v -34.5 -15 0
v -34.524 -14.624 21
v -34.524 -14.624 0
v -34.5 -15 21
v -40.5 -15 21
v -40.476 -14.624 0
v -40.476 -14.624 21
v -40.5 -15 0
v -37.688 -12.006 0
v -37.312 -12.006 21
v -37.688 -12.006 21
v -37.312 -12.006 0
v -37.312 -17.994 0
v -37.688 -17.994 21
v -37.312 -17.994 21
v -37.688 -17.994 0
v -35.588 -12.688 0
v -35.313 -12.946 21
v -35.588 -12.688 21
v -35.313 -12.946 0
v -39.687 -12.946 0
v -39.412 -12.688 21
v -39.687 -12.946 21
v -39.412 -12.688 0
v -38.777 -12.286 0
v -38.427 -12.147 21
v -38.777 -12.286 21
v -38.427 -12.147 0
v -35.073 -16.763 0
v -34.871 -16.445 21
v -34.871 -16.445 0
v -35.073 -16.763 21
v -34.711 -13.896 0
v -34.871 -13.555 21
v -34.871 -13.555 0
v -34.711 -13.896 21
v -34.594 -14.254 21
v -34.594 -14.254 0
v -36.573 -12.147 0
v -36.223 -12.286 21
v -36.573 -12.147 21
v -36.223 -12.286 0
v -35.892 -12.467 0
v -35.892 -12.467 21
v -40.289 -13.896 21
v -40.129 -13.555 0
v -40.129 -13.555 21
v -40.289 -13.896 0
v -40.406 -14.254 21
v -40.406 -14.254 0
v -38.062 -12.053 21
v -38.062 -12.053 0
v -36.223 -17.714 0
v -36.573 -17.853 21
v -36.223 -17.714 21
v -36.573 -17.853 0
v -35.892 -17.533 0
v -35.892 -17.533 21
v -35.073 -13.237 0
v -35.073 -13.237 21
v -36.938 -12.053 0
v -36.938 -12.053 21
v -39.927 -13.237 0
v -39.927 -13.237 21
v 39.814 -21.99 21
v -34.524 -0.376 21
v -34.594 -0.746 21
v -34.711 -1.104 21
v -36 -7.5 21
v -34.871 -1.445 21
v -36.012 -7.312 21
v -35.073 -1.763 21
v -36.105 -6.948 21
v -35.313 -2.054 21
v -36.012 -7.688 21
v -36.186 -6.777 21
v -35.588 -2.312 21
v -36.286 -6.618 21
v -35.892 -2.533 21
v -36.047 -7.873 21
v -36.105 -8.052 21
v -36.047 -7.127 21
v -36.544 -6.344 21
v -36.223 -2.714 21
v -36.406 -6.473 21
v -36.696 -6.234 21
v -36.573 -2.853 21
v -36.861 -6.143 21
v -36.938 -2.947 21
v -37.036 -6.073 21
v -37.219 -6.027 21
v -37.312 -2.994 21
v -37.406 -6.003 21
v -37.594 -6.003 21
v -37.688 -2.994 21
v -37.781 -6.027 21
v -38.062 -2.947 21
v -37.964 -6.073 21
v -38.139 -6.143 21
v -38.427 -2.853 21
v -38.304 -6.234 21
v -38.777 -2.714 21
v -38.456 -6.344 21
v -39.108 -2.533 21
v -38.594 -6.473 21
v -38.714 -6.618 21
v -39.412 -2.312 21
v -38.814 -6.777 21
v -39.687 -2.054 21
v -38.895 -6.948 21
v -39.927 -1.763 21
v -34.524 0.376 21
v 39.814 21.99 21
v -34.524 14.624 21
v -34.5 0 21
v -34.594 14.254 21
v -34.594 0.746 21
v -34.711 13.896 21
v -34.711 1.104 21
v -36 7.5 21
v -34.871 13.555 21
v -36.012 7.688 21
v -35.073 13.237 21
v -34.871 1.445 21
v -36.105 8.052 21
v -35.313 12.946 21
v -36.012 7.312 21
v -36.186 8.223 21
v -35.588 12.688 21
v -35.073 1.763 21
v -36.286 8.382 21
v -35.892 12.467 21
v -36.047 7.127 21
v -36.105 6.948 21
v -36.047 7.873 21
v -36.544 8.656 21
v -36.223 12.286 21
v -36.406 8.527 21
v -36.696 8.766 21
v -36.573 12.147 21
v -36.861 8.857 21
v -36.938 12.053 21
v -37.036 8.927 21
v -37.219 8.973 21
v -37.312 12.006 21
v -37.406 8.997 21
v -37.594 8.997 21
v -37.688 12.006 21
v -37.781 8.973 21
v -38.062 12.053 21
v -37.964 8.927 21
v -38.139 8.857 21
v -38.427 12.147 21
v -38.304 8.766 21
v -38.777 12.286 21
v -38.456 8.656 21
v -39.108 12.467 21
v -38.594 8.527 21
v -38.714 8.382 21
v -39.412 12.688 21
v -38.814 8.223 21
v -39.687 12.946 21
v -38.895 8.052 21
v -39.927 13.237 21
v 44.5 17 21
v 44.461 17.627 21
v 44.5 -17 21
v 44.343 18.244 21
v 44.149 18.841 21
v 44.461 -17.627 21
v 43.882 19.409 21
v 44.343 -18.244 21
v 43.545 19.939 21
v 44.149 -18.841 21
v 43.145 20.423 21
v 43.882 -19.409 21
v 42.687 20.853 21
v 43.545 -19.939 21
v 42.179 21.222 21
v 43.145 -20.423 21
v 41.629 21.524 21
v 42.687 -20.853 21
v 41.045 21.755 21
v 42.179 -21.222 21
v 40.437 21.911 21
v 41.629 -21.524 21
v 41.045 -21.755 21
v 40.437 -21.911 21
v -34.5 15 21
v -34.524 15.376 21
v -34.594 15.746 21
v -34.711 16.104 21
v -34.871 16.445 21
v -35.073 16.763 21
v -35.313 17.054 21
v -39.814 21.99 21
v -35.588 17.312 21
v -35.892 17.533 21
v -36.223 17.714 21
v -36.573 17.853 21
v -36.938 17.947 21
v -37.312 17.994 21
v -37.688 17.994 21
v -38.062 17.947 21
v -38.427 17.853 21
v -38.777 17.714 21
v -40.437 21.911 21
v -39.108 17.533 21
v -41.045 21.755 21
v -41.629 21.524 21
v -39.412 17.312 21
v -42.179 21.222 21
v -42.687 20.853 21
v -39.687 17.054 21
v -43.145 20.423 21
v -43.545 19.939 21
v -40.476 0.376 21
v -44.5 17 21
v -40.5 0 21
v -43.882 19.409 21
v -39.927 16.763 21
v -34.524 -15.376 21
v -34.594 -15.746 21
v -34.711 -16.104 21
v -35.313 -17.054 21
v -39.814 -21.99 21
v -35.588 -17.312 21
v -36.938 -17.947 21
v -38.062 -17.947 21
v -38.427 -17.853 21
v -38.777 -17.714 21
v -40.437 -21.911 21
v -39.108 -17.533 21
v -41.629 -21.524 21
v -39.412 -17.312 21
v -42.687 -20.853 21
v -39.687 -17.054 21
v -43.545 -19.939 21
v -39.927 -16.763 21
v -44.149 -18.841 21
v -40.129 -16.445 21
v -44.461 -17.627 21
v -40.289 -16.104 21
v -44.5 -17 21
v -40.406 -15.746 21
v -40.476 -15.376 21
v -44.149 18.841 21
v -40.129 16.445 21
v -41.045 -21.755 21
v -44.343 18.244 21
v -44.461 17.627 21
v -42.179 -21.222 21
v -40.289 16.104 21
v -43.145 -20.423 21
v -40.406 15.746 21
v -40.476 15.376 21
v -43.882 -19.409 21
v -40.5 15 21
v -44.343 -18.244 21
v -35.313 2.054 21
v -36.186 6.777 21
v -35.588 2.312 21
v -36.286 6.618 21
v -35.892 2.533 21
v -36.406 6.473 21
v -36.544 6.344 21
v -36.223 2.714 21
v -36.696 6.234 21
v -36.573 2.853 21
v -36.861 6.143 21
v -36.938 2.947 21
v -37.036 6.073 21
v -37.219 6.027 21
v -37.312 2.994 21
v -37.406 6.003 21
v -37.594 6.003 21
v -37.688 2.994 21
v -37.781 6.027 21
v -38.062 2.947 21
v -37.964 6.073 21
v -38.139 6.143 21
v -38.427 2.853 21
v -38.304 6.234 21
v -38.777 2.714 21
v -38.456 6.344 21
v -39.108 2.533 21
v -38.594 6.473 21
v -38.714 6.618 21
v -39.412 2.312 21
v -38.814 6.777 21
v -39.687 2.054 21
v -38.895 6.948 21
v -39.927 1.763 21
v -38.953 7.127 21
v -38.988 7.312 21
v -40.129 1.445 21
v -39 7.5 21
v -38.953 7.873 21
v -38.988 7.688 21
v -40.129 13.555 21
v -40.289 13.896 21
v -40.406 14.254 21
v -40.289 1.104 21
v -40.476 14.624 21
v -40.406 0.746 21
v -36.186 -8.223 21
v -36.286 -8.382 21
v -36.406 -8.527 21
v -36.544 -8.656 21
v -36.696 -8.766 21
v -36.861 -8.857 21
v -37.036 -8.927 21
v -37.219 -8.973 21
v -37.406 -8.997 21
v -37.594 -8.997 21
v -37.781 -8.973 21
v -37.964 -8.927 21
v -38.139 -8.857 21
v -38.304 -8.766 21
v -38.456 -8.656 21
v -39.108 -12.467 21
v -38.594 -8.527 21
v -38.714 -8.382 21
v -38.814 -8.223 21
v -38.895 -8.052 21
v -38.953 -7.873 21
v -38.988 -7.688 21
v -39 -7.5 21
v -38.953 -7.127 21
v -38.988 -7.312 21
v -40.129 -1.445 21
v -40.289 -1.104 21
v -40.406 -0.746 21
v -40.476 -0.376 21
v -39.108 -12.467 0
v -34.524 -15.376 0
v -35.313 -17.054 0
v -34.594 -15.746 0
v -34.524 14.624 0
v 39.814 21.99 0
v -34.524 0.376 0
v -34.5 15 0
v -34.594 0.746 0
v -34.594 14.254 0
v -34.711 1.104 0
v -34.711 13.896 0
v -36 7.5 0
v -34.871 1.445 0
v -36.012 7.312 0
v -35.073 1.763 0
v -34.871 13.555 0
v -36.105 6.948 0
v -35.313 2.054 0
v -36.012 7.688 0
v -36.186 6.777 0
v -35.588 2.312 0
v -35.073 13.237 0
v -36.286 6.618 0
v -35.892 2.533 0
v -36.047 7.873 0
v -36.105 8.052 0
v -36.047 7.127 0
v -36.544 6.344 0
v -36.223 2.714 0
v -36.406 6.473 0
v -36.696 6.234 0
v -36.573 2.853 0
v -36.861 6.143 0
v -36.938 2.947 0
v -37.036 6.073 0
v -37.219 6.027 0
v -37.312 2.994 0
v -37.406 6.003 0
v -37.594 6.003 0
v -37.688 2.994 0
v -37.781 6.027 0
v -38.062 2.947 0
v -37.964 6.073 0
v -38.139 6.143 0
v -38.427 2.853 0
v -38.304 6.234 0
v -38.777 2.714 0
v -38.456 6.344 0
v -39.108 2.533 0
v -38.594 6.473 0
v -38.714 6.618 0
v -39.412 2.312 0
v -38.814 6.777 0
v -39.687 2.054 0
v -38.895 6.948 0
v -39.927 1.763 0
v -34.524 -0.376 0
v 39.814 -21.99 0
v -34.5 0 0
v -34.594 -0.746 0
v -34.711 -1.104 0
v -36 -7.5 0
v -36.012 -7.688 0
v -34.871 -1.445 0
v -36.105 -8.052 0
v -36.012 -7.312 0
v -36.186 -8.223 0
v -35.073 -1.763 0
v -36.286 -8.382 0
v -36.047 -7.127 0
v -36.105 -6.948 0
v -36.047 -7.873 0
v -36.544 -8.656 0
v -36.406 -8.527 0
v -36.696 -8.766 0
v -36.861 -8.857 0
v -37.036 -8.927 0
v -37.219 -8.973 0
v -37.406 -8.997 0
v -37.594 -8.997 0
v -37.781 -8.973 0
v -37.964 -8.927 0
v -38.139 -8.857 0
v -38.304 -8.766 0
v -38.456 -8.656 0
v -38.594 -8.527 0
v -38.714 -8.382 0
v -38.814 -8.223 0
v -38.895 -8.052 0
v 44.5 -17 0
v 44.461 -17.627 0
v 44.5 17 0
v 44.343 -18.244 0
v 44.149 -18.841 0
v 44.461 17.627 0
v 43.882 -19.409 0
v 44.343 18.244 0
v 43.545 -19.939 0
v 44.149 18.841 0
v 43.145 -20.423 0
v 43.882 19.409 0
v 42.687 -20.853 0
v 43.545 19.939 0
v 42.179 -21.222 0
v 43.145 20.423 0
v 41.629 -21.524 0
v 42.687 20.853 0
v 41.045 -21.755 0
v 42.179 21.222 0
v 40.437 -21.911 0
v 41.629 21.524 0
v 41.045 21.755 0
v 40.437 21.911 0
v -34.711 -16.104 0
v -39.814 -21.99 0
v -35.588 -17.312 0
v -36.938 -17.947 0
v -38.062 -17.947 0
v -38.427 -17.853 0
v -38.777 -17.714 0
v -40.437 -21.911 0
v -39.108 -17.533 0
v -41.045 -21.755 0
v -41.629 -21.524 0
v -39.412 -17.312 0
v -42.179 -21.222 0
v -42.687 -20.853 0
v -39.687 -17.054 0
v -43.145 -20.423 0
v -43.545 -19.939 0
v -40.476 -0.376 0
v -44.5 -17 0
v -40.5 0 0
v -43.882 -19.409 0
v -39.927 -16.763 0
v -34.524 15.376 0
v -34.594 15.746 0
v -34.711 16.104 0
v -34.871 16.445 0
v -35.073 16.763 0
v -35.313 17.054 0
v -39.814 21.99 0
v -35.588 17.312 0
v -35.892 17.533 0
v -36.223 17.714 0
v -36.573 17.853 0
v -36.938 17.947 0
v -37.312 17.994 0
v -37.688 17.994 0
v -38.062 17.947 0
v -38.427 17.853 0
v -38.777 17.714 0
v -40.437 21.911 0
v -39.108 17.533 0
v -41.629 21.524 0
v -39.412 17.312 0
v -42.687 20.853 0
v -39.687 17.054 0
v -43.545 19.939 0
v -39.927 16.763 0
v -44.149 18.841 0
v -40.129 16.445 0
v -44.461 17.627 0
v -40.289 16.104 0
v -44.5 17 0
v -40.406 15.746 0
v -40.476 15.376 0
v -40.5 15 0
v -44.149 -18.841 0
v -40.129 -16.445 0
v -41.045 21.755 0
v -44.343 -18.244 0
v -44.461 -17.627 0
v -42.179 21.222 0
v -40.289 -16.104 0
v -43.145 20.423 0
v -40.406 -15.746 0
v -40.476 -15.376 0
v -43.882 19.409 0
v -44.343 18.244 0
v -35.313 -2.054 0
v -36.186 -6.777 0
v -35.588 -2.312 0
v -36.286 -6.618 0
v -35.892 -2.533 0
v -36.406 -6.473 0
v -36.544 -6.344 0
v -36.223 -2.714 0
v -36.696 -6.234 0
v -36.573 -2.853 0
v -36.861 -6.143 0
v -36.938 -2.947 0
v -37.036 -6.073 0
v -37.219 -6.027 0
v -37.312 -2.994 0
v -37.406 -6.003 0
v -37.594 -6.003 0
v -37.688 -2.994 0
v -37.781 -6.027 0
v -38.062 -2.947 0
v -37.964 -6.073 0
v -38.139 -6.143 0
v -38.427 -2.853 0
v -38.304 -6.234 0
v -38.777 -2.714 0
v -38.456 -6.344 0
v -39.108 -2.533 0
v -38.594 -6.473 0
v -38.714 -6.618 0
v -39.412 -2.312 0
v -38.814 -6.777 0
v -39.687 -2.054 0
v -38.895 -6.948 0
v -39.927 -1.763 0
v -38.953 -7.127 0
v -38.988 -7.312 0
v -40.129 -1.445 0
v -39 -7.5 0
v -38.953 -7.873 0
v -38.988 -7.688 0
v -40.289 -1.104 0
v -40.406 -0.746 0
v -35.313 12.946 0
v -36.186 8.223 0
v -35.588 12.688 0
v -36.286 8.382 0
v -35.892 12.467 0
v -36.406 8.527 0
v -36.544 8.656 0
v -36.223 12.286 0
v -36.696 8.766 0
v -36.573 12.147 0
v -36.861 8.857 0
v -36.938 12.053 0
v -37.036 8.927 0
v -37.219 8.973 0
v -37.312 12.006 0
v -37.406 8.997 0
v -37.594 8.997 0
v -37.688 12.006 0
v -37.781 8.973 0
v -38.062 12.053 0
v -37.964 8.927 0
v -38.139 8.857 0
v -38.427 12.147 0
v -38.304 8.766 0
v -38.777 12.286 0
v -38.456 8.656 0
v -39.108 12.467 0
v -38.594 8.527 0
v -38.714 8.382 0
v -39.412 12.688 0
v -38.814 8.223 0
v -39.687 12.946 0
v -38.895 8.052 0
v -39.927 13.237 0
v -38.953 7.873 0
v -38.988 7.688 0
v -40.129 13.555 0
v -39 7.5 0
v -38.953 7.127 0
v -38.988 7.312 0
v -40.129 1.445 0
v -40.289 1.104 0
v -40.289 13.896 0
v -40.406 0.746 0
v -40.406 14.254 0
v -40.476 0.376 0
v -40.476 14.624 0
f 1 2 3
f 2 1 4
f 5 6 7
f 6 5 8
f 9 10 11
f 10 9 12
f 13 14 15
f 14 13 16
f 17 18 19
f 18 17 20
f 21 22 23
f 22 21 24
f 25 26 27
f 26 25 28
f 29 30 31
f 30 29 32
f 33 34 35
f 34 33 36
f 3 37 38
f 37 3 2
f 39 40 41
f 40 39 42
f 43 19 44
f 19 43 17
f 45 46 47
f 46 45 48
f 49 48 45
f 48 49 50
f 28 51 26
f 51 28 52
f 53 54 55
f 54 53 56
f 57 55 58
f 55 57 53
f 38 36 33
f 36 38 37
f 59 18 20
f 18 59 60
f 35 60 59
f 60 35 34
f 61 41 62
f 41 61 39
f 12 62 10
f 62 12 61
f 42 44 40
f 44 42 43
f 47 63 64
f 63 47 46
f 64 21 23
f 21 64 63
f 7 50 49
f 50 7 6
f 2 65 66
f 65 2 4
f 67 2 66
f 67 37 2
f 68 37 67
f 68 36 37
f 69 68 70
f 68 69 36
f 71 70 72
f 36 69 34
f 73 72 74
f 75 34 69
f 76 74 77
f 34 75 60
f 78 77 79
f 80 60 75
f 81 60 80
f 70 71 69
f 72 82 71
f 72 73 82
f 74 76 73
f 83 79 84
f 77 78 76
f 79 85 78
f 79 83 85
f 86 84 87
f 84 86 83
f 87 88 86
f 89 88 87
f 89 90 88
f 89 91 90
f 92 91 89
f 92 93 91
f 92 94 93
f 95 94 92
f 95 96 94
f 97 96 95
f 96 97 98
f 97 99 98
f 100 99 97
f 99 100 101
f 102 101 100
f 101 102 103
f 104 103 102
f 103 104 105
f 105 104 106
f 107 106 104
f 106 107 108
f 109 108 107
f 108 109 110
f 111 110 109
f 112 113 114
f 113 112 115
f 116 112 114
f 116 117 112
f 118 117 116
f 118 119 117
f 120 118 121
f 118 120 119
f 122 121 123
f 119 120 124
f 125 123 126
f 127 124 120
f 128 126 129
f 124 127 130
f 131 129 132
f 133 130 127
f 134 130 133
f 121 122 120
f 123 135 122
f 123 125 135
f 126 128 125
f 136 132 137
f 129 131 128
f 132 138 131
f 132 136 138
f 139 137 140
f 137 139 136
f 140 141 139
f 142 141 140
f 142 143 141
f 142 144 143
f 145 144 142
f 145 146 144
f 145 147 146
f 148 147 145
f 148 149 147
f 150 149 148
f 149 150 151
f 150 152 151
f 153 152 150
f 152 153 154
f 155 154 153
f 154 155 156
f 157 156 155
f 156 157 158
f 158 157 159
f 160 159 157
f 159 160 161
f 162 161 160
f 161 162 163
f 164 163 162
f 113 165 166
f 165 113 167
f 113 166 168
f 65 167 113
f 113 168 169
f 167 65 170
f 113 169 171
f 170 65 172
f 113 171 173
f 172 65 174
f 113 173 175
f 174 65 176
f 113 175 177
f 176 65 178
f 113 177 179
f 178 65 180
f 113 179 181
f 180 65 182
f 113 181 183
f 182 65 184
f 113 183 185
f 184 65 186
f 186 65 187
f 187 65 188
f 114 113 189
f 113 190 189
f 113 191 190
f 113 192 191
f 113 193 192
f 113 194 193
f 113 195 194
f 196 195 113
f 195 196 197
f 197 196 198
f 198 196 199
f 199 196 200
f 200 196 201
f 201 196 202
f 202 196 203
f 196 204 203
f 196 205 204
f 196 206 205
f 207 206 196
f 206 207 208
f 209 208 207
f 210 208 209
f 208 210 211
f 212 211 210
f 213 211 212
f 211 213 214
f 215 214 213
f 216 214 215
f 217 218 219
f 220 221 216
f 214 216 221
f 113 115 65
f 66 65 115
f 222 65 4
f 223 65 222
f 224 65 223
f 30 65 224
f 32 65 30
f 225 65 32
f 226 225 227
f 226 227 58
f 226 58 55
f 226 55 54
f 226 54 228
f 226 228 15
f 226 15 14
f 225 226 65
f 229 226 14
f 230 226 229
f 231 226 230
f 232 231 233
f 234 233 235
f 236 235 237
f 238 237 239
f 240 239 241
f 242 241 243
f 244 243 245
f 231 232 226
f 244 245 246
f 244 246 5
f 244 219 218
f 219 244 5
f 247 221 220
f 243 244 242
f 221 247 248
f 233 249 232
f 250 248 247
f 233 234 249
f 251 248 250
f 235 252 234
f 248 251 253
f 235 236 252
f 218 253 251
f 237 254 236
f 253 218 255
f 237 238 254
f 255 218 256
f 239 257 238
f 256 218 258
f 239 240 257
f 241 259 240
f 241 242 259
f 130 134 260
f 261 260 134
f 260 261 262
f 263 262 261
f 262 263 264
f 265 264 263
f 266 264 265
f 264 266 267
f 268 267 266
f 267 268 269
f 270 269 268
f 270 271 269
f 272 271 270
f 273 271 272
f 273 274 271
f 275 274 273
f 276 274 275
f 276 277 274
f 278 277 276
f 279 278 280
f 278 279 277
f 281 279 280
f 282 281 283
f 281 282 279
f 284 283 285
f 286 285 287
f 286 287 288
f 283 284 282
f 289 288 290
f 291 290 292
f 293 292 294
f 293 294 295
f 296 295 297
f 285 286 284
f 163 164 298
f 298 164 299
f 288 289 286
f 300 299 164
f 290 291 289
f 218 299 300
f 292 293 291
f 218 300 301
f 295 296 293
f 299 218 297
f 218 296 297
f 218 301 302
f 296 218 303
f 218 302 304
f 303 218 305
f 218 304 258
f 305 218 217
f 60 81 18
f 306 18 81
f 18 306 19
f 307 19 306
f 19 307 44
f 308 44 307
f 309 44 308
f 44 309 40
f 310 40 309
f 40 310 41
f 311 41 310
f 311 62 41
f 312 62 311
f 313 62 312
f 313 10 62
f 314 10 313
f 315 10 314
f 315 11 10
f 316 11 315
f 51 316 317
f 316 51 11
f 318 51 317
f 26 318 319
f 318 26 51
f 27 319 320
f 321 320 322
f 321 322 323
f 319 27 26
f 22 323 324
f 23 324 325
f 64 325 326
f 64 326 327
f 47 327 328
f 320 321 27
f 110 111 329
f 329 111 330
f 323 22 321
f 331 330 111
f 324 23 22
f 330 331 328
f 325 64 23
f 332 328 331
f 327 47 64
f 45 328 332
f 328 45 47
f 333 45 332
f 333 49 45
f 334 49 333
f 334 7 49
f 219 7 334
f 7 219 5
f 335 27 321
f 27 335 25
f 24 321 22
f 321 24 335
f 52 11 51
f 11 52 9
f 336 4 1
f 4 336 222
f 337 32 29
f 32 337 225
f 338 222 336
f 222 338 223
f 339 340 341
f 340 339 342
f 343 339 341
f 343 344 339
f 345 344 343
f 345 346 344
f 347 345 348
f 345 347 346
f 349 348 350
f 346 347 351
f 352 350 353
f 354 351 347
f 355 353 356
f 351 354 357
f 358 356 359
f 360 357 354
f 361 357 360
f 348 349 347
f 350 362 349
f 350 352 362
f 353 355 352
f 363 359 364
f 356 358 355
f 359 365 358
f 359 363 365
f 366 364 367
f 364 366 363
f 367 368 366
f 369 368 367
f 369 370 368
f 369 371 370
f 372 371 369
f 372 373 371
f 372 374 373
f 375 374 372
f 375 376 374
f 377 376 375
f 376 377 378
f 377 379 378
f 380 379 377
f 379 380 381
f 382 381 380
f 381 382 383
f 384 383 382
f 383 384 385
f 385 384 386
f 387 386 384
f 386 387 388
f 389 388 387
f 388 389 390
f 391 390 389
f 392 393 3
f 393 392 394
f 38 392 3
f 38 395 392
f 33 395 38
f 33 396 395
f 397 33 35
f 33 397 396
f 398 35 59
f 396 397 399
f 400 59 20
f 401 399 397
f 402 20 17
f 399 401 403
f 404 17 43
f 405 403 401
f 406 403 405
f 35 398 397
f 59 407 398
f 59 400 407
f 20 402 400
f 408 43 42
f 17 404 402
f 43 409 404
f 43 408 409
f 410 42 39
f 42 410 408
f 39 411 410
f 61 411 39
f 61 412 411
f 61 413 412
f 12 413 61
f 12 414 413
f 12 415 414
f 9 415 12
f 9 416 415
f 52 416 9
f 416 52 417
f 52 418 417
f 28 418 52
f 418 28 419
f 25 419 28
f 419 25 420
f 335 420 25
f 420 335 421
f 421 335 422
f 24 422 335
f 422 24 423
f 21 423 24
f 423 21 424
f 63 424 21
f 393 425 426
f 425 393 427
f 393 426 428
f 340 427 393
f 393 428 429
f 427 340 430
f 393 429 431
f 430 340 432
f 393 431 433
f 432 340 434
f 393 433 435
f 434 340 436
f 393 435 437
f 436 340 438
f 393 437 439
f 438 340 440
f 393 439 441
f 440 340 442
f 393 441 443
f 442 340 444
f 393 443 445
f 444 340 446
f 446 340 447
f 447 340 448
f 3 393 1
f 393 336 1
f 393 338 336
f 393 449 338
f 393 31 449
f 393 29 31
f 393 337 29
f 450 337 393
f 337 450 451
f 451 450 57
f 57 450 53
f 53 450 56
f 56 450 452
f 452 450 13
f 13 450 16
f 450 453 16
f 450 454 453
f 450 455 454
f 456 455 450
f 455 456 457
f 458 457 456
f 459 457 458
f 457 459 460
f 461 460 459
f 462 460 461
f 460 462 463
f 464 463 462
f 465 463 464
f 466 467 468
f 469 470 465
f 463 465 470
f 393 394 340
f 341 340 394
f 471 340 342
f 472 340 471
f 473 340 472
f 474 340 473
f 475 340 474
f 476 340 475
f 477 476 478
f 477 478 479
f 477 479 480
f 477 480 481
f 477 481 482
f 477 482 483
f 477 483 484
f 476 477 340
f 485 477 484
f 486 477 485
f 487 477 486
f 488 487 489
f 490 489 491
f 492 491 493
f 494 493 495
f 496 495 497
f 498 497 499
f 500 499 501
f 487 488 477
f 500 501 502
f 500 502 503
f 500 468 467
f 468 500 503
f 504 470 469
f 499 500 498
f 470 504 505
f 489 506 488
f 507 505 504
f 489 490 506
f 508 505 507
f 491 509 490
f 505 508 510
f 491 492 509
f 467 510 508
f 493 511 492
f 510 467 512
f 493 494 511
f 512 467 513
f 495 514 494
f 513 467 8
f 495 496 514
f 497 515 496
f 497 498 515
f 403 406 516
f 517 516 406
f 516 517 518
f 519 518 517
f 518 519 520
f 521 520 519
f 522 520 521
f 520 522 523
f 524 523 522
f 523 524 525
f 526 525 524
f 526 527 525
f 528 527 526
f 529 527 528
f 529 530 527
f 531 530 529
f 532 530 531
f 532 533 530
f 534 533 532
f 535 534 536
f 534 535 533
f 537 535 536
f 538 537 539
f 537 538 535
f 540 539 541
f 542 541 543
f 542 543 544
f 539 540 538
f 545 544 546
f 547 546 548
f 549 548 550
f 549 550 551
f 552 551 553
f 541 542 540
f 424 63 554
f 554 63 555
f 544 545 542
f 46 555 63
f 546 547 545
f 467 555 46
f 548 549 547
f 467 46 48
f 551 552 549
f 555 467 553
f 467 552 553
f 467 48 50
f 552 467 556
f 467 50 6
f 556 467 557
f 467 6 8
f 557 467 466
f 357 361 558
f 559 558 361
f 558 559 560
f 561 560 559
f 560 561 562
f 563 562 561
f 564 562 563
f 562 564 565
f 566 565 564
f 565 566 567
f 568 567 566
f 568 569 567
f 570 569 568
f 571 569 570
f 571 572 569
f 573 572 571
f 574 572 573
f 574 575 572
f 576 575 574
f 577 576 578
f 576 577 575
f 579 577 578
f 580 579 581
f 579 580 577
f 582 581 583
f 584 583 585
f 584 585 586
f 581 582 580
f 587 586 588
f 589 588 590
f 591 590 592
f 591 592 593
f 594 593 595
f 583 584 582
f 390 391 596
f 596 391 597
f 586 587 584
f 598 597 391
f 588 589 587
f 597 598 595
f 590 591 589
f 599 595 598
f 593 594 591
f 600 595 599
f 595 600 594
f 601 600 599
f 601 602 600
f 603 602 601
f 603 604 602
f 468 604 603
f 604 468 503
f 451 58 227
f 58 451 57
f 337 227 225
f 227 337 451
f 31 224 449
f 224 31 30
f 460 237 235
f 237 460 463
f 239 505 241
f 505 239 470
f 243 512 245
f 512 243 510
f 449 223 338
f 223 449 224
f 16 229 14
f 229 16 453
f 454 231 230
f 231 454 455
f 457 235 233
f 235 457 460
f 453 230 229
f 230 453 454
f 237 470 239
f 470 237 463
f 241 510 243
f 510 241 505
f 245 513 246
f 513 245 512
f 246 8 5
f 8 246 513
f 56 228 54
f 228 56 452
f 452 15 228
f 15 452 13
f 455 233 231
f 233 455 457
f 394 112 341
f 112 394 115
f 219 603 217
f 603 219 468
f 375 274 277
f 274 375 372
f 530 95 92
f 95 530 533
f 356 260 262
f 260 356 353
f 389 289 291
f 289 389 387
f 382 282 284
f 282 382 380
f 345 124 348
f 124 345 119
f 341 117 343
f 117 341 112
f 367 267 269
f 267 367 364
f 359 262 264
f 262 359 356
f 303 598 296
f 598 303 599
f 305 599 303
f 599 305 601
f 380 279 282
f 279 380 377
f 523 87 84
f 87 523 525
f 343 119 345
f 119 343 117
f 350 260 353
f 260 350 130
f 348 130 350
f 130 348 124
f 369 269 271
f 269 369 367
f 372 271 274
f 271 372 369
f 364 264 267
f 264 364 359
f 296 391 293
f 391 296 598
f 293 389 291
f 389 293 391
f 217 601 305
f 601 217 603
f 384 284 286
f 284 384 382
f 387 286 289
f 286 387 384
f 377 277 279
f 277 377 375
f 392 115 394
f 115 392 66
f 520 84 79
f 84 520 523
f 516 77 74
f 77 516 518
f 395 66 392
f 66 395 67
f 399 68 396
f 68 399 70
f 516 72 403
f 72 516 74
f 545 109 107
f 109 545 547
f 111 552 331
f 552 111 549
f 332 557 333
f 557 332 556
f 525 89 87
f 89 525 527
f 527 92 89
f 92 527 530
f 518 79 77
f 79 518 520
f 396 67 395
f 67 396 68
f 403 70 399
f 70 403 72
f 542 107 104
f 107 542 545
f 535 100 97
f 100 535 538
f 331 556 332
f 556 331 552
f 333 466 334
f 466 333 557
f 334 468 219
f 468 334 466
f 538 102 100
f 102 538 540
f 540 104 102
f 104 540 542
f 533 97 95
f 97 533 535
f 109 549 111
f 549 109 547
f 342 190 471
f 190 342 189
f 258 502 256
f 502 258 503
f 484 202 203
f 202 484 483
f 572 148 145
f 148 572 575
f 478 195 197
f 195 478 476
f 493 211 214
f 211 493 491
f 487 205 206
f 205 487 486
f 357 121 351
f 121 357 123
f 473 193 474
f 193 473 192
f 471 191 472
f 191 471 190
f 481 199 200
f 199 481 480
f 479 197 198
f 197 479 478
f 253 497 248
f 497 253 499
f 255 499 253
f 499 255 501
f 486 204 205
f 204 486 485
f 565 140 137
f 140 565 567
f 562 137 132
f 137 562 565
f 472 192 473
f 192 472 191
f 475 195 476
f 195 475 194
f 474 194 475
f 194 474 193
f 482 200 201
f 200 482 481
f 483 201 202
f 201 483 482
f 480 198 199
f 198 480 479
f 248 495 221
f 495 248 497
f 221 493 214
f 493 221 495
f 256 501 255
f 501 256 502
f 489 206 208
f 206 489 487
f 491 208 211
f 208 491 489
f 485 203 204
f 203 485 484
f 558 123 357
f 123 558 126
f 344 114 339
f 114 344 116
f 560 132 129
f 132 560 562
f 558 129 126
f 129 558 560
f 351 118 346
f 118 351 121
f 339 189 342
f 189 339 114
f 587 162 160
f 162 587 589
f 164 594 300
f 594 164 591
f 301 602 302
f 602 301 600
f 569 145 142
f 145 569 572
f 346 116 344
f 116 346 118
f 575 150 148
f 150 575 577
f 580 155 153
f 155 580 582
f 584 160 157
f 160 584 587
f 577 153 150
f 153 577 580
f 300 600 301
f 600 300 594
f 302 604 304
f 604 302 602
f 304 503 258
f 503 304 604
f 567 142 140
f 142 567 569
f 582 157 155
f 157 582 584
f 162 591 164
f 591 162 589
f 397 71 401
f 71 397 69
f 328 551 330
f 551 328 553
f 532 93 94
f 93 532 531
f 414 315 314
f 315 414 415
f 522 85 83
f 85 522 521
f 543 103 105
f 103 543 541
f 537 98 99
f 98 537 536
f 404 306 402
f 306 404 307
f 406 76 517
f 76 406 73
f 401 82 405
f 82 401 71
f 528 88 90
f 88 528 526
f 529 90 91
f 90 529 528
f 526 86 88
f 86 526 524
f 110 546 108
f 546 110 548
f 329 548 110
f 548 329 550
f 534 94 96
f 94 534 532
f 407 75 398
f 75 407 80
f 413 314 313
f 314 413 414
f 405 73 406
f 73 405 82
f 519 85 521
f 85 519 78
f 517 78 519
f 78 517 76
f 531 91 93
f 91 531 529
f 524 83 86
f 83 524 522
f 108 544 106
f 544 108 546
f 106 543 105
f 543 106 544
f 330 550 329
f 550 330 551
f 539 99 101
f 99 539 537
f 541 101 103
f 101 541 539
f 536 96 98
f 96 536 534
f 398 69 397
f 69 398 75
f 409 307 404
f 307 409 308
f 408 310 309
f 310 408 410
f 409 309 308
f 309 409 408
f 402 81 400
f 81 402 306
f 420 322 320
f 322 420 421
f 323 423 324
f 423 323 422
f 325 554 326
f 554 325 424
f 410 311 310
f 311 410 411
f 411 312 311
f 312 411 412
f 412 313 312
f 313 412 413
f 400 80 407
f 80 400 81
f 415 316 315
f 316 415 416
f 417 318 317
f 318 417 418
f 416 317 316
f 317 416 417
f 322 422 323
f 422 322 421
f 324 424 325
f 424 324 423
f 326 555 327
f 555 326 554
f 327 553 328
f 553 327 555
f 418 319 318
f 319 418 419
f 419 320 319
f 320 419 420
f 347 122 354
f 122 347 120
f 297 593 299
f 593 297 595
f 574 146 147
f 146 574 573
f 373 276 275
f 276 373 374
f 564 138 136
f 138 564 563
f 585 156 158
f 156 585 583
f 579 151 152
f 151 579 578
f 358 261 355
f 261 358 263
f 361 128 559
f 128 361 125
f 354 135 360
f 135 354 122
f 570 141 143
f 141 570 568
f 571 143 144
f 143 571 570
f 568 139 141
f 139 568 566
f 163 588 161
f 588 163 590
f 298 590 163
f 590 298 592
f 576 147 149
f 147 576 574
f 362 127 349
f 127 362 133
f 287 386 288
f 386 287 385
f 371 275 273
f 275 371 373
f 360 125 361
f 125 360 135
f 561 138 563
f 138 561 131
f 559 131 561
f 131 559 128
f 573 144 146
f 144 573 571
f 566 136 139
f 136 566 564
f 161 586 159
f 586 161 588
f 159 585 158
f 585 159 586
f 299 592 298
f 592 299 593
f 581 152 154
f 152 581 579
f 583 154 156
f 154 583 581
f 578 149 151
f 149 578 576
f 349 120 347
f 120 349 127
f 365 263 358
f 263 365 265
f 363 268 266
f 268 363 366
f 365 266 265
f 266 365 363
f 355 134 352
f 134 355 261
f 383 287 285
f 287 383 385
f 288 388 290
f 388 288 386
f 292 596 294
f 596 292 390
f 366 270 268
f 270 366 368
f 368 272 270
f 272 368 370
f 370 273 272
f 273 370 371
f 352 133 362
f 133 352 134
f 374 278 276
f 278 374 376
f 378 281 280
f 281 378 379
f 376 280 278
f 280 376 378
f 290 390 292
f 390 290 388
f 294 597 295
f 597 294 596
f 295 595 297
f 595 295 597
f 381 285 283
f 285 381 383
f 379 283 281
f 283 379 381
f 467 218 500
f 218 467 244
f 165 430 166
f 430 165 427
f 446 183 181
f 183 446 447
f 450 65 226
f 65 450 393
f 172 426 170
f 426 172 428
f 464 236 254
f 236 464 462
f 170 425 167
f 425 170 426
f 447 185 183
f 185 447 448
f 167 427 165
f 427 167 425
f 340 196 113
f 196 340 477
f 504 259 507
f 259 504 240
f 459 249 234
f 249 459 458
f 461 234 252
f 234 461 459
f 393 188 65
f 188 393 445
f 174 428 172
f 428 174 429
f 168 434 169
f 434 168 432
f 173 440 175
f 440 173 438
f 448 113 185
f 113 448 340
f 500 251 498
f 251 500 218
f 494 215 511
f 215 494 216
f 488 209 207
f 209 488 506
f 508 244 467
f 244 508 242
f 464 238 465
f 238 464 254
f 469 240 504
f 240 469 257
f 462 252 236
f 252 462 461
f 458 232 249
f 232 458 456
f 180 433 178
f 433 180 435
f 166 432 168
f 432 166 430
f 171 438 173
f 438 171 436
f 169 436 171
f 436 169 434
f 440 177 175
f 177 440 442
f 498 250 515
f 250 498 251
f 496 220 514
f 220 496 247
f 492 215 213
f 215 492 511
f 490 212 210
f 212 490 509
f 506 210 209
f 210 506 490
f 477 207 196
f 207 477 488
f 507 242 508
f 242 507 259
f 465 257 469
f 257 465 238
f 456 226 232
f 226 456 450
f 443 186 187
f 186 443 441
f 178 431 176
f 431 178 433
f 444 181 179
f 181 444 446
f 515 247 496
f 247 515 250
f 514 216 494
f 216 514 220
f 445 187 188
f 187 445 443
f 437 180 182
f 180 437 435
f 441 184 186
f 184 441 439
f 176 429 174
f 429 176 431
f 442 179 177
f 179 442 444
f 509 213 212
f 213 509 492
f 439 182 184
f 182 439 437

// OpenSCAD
$fn = 50;


difference() {
	union() {
		hull() {
			translate(v = [-39.5000000000, 17.0000000000, 0]) {
				cylinder(h = 21, r = 5);
			}
			translate(v = [39.5000000000, 17.0000000000, 0]) {
				cylinder(h = 21, r = 5);
			}
			translate(v = [-39.5000000000, -17.0000000000, 0]) {
				cylinder(h = 21, r = 5);
			}
			translate(v = [39.5000000000, -17.0000000000, 0]) {
				cylinder(h = 21, r = 5);
			}
		}
	}
	union() {
		translate(v = [-37.5000000000, -15.0000000000, 0]) {
			cylinder(h = 21, r = 3.0000000000);
		}
		translate(v = [-37.5000000000, 0.0000000000, 0]) {
			cylinder(h = 21, r = 3.0000000000);
		}
		translate(v = [-37.5000000000, 15.0000000000, 0]) {
			cylinder(h = 21, r = 3.0000000000);
		}
		translate(v = [-37.5000000000, -15.0000000000, 0]) {
			cylinder(h = 21, r = 1.5000000000);
		}
		translate(v = [-37.5000000000, -7.5000000000, 0]) {
			cylinder(h = 21, r = 1.5000000000);
		}
		translate(v = [-37.5000000000, 0.0000000000, 0]) {
			cylinder(h = 21, r = 1.5000000000);
		}
		translate(v = [-37.5000000000, 7.5000000000, 0]) {
			cylinder(h = 21, r = 1.5000000000);
		}
		translate(v = [-37.5000000000, 15.0000000000, 0]) {
			cylinder(h = 21, r = 1.5000000000);
		}
		translate(v = [-37.5000000000, -15.0000000000, 0]) {
			cylinder(h = 21, r = 1.5000000000);
		}
		translate(v = [-37.5000000000, -7.5000000000, 0]) {
			cylinder(h = 21, r = 1.5000000000);
		}
		translate(v = [-37.5000000000, 0.0000000000, 0]) {
			cylinder(h = 21, r = 1.5000000000);
		}
		translate(v = [-37.5000000000, 7.5000000000, 0]) {
			cylinder(h = 21, r = 1.5000000000);
		}
		translate(v = [-37.5000000000, 15.0000000000, 0]) {
			cylinder(h = 21, r = 1.5000000000);
		}
		translate(v = [-37.5000000000, -15.0000000000, 0]) {
			cylinder(h = 21, r = 1.5000000000);
		}
		translate(v = [-37.5000000000, -7.5000000000, 0]) {
			cylinder(h = 21, r = 1.5000000000);
		}
		translate(v = [-37.5000000000, 0.0000000000, 0]) {
			cylinder(h = 21, r = 1.5000000000);
		}
		translate(v = [-37.5000000000, 7.5000000000, 0]) {
			cylinder(h = 21, r = 1.5000000000);
		}
		translate(v = [-37.5000000000, 15.0000000000, 0]) {
			cylinder(h = 21, r = 1.5000000000);
		}
	}
}
